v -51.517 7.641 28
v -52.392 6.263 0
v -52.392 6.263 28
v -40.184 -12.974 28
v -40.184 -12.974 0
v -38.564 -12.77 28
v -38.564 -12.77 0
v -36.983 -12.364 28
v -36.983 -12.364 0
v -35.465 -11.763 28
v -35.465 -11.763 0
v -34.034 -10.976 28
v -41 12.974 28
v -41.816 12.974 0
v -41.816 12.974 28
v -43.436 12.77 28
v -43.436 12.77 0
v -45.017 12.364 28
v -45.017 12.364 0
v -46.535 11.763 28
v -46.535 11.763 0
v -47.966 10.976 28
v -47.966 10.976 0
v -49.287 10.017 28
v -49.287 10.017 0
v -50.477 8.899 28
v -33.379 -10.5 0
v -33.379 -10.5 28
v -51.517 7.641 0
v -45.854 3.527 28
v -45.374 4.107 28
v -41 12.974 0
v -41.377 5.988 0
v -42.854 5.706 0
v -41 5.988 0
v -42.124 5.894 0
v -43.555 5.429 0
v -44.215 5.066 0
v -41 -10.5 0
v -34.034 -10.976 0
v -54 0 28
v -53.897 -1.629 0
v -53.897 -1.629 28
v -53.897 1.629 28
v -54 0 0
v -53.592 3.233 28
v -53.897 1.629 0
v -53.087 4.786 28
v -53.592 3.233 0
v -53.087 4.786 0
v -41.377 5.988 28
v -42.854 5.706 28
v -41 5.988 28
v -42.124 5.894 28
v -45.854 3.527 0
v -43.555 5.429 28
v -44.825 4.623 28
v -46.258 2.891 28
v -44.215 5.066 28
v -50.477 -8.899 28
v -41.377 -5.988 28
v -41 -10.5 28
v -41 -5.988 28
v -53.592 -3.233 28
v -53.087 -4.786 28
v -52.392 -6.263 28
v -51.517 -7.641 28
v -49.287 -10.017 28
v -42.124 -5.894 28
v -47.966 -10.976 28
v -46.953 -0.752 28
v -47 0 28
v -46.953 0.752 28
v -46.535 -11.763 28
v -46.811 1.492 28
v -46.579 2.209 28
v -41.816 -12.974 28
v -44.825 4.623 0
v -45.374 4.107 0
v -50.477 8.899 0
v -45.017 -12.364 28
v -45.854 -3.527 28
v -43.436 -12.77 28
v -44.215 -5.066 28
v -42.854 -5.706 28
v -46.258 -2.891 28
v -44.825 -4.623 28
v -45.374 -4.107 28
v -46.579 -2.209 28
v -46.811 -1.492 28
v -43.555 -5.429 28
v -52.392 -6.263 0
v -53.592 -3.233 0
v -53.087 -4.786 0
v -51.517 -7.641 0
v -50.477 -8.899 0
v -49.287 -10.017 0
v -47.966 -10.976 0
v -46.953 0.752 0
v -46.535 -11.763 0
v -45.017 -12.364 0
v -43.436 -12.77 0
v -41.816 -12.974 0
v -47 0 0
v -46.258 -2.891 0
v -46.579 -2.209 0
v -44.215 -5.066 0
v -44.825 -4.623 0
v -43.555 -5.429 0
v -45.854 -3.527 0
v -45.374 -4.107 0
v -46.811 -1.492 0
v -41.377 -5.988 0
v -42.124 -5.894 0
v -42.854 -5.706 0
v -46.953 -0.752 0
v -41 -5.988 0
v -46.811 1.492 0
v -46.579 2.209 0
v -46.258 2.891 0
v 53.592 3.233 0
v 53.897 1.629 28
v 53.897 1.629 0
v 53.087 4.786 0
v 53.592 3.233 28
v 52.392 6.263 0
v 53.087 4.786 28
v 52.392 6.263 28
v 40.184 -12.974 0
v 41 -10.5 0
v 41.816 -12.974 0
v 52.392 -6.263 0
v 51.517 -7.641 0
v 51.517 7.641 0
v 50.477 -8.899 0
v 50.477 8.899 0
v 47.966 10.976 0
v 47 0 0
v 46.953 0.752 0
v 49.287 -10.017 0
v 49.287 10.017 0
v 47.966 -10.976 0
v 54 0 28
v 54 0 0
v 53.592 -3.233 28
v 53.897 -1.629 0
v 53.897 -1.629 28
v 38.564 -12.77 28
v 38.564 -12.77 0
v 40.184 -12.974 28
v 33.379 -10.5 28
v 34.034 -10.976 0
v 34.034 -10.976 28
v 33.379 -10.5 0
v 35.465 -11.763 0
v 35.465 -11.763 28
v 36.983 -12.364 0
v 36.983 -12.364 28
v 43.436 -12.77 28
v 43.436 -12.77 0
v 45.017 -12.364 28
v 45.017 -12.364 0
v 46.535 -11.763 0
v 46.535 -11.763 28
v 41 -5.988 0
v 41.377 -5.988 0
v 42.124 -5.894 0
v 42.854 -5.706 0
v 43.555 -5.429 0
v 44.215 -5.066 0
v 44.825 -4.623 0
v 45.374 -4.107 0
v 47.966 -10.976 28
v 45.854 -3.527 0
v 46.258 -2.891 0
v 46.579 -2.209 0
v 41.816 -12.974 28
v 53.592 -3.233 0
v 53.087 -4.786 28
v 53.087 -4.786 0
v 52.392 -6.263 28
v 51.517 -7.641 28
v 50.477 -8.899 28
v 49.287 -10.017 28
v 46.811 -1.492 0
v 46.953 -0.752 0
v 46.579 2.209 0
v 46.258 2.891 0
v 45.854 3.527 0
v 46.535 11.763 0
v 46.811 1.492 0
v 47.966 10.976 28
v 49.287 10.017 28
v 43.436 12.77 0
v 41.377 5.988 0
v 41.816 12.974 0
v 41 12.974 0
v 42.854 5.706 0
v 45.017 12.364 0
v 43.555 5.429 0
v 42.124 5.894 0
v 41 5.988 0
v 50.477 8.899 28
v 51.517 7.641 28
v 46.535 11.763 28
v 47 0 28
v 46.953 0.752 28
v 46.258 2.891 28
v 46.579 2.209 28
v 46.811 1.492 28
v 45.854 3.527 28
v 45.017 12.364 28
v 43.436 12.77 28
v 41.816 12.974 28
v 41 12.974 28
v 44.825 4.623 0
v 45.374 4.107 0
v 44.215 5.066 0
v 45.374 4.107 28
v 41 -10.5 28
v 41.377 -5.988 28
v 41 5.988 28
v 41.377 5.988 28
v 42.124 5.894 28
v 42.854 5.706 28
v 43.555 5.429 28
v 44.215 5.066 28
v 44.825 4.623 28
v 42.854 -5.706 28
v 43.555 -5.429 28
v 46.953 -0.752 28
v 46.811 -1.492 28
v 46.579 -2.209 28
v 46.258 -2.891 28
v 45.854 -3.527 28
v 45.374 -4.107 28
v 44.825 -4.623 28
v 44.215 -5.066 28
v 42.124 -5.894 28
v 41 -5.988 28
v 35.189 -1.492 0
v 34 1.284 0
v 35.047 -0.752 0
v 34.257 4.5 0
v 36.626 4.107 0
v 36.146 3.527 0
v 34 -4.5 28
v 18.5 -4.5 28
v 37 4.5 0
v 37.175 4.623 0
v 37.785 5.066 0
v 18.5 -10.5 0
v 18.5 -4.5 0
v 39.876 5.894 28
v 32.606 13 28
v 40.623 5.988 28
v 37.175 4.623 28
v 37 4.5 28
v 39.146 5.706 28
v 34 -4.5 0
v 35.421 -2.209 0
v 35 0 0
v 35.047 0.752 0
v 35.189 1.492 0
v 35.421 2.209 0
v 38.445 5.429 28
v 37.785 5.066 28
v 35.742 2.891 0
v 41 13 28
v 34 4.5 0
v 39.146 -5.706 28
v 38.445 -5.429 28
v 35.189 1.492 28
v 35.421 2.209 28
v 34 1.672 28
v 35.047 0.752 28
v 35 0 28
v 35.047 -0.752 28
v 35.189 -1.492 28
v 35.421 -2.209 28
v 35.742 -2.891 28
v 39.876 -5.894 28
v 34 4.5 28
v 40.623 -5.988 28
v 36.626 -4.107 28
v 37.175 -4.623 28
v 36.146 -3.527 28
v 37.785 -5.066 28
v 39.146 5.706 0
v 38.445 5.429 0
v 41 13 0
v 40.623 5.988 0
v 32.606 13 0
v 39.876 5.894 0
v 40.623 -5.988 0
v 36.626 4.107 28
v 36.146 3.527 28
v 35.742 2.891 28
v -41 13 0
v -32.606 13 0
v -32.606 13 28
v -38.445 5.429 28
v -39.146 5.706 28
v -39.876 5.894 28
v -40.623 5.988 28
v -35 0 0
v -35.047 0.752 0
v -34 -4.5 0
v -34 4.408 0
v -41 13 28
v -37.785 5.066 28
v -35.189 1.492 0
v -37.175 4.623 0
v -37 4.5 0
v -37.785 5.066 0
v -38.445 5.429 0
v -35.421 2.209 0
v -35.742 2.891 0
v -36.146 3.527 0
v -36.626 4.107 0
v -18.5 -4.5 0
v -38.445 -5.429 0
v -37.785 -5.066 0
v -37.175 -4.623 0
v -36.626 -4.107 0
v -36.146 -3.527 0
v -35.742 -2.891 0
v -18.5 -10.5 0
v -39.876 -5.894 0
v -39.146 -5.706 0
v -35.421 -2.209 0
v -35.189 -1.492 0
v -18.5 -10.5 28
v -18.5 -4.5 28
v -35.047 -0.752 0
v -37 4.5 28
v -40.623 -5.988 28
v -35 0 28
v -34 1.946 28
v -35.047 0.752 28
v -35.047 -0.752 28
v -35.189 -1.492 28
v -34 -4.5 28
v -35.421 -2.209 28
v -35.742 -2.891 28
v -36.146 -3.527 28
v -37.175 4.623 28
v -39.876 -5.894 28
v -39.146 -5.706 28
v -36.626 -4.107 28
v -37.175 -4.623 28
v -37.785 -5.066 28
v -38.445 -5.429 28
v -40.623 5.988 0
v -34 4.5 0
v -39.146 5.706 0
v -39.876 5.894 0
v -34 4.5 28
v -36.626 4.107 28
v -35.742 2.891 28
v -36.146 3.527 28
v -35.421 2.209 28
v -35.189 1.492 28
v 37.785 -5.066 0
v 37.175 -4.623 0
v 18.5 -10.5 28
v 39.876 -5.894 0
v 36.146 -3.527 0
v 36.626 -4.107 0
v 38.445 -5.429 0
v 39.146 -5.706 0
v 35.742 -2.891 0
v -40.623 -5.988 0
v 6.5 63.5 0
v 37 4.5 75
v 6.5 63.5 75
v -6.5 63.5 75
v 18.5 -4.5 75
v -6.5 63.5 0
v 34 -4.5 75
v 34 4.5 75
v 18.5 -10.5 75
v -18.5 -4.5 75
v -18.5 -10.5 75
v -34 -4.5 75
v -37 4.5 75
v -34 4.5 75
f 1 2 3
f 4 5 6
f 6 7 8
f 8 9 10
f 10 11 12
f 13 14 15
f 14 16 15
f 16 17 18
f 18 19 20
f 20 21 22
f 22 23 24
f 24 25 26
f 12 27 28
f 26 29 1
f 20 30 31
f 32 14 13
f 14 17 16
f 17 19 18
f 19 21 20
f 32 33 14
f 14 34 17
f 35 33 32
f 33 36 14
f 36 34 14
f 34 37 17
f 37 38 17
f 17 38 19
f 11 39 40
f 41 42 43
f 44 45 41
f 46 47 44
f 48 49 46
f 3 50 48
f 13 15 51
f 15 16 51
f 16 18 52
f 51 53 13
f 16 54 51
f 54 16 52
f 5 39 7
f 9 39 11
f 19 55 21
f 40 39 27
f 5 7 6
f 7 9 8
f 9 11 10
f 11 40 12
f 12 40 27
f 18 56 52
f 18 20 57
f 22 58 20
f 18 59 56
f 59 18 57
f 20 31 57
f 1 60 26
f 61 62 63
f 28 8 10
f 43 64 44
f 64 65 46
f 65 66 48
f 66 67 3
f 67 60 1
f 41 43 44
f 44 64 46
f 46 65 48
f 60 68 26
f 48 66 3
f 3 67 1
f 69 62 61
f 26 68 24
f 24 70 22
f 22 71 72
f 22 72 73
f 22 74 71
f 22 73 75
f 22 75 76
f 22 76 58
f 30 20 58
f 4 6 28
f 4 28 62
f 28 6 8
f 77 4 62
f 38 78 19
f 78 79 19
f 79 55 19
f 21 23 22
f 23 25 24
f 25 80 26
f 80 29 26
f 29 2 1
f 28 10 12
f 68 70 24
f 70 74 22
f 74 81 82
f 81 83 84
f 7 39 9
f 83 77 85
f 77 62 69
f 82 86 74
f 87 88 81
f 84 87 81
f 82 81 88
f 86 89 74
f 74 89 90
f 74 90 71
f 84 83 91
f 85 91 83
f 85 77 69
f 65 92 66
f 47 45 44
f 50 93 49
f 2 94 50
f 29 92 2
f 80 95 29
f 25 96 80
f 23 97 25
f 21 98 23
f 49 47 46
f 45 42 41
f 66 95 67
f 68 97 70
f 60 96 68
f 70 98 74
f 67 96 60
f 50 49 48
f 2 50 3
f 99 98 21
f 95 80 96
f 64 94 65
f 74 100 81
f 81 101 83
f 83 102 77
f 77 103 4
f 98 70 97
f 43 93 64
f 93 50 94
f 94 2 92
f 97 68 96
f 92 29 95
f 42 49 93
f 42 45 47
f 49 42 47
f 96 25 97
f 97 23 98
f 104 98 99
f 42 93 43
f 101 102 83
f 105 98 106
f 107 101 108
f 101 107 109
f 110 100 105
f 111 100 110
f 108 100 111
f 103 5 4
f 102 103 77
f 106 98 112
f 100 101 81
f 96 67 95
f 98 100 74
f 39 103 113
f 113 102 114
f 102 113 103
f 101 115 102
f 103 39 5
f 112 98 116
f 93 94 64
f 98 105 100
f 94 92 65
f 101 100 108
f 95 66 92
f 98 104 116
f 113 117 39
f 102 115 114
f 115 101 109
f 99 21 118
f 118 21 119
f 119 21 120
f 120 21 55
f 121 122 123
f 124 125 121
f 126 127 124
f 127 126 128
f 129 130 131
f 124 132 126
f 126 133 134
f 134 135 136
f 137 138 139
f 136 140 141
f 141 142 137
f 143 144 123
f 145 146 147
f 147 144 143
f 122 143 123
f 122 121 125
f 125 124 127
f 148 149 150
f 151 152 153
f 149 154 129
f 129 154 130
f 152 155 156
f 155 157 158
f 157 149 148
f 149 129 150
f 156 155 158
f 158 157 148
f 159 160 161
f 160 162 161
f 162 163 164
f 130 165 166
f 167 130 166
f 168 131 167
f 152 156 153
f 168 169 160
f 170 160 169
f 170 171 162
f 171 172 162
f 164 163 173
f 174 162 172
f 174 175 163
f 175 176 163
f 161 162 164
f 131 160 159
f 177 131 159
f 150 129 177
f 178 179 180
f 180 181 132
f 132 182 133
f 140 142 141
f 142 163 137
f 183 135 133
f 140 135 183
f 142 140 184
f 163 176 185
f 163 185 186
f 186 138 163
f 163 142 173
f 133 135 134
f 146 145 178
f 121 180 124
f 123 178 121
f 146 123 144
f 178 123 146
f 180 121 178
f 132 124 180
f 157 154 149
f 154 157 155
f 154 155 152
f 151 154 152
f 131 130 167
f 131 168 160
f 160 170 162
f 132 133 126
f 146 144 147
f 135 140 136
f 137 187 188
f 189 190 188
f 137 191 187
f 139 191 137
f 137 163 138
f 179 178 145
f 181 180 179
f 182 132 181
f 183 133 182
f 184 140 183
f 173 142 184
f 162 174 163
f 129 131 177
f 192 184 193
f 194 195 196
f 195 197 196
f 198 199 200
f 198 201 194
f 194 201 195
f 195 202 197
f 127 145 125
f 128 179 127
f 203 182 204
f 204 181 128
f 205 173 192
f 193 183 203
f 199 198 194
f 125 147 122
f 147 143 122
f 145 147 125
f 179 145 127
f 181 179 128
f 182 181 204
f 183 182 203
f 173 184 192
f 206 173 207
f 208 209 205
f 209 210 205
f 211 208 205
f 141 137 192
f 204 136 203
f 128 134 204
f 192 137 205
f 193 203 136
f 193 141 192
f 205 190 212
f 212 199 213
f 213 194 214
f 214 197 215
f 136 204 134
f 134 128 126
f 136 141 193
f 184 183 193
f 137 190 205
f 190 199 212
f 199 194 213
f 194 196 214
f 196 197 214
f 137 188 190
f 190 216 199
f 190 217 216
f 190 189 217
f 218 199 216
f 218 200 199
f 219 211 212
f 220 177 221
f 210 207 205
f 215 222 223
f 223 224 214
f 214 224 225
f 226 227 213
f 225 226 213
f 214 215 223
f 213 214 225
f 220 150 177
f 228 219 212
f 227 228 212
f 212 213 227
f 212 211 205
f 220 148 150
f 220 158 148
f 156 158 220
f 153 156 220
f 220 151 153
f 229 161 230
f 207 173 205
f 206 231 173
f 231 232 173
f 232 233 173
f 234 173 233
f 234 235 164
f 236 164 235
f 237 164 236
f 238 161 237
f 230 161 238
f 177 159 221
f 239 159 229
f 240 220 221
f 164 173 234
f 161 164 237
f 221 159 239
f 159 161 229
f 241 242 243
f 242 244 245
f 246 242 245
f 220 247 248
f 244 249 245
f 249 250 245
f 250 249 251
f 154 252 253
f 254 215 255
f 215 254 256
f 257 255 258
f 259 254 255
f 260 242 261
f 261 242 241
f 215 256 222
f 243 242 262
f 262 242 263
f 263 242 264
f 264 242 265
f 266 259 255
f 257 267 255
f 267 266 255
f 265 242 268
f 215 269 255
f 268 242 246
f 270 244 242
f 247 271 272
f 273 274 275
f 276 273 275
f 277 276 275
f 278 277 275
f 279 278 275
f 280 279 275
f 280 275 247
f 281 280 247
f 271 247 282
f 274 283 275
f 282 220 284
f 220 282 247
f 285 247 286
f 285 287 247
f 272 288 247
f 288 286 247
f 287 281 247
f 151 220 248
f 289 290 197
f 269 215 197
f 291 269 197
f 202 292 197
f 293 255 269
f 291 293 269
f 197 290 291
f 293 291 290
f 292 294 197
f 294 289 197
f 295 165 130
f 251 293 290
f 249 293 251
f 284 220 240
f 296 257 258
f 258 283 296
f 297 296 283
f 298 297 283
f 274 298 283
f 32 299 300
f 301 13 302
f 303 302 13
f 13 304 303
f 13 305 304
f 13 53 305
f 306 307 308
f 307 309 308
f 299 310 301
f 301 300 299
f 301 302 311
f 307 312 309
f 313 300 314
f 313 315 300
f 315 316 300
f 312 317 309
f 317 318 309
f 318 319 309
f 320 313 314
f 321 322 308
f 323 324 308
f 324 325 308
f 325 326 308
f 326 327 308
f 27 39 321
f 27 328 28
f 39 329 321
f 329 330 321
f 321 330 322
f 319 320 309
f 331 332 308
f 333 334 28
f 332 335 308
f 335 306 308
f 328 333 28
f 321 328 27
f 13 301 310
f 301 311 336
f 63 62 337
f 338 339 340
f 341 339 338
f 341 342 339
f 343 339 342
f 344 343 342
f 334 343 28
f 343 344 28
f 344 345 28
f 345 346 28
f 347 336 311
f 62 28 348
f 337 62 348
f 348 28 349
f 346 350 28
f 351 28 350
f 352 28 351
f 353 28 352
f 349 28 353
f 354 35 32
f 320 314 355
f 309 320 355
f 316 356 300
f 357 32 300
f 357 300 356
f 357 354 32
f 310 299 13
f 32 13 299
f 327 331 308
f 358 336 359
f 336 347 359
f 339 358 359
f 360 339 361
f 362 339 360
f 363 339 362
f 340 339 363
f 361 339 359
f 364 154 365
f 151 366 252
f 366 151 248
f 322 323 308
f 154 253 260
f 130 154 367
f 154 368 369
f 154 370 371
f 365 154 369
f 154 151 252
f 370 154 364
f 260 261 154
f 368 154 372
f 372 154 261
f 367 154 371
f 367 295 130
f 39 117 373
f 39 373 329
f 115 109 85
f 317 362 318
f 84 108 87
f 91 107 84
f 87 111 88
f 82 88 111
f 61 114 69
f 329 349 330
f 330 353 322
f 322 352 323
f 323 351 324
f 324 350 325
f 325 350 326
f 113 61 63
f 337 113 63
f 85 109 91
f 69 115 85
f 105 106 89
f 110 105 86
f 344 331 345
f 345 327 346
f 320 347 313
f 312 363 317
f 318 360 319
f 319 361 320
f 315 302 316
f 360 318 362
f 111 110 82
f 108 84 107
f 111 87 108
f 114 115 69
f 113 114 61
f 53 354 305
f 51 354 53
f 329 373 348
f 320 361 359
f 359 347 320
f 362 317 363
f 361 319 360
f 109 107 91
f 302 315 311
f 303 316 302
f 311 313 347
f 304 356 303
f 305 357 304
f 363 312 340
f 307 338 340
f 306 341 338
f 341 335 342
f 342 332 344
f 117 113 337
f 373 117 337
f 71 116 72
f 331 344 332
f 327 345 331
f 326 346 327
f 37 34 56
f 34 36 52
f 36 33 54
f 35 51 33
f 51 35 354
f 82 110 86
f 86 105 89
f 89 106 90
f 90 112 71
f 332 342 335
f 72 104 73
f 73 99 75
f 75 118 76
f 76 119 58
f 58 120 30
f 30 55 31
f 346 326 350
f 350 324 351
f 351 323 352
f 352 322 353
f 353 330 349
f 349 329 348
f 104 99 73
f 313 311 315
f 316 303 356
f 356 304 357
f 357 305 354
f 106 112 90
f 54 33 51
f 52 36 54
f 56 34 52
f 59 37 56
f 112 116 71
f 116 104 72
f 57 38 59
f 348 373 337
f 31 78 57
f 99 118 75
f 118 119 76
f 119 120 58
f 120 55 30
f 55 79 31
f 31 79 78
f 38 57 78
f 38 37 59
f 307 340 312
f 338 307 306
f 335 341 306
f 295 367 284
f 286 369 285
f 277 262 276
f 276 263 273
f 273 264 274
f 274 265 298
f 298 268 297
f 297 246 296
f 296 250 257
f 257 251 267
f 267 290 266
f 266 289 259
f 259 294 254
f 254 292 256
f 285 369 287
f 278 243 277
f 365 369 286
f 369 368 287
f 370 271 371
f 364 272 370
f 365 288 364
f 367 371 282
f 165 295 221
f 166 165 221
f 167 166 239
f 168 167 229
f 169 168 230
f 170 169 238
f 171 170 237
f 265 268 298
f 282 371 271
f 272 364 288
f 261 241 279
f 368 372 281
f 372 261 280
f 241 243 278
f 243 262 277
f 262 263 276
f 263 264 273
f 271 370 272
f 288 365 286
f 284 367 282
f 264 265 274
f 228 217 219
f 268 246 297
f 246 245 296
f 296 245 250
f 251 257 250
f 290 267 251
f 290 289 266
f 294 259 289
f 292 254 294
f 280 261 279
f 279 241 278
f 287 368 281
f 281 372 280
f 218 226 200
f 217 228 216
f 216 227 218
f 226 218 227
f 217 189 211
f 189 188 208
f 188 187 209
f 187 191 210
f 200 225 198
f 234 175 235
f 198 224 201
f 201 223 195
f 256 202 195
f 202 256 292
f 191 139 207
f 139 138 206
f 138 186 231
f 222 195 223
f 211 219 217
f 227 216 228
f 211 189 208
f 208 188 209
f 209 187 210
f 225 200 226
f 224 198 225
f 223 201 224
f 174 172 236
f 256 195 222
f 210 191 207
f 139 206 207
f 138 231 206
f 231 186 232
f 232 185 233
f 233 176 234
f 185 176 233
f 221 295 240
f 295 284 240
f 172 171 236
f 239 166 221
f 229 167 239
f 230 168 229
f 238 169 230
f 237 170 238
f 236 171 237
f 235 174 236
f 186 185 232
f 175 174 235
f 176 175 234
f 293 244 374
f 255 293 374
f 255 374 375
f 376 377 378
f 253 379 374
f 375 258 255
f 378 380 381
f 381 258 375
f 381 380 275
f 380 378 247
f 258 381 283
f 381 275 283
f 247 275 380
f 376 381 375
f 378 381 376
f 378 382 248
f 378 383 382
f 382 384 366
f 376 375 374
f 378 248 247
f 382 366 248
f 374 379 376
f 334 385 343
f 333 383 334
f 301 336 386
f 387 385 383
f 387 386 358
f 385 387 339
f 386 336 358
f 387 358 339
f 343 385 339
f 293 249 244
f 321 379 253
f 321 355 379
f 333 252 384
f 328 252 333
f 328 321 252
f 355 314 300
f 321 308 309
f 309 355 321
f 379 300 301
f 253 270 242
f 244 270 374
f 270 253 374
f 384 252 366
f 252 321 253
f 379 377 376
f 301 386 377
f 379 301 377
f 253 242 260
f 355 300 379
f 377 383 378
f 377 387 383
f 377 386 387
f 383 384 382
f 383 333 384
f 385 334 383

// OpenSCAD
iw1 = 74;
iw2 = 68;
iw3 = 37;
iw4 = 13;
ih1 = 74;
ih2 = 9;
ih3 = 6;

cr1 = 6;
cr2 = 13;
cw1 = 70 + cr1 * 2;
ch1 = 28;

icoffset = 2.5;

$fn=50;

module insert2d() {
    polygon([
        [0,0], [(iw1-iw2)/2,0], 
        [(iw1-iw2)/2,-ih2], [(iw1-iw3)/2,-ih2],
        [(iw1-iw3)/2,-(ih2+ih3)], [(iw1-iw3)/2+iw3,-(ih2+ih3)],
        [(iw1-iw3)/2+iw3,-ih2], [(iw1-iw2)/2+iw2,-ih2],
        [(iw1-iw2)/2+iw2,0], [iw1,0],
        [(iw1-iw4)/2+iw4,ih1-ih2-ih3], [(iw1-iw4)/2,ih1-ih2-ih3]
        
    ]);
}

module insert3d() {
    translate([-iw1/2,0,0])
    linear_extrude(75) {
        insert2d();
    }
}

module outcut() {
    resize([iw1-2,(ih1)-2,0]) {
        insert3d();
    }
}

module cap() {
    translate([-cw1/2,0,0])
    difference() {
        union() {
            cylinder(ch1, r=cr2);
            translate([cw1, 0, 0]) cylinder(ch1, r=cr2);
            translate([0,-cr2+icoffset,0]) cube([cw1, cr2*2-icoffset, ch1]);
        }
        union() {
            cylinder(ch1, r=cr1);
            translate([cw1, 0, 0]) cylinder(ch1, r=cr1);
        }
    }
}

translate([0,ih2+ih3+icoffset-cr2,0])
insert3d();
cap();
